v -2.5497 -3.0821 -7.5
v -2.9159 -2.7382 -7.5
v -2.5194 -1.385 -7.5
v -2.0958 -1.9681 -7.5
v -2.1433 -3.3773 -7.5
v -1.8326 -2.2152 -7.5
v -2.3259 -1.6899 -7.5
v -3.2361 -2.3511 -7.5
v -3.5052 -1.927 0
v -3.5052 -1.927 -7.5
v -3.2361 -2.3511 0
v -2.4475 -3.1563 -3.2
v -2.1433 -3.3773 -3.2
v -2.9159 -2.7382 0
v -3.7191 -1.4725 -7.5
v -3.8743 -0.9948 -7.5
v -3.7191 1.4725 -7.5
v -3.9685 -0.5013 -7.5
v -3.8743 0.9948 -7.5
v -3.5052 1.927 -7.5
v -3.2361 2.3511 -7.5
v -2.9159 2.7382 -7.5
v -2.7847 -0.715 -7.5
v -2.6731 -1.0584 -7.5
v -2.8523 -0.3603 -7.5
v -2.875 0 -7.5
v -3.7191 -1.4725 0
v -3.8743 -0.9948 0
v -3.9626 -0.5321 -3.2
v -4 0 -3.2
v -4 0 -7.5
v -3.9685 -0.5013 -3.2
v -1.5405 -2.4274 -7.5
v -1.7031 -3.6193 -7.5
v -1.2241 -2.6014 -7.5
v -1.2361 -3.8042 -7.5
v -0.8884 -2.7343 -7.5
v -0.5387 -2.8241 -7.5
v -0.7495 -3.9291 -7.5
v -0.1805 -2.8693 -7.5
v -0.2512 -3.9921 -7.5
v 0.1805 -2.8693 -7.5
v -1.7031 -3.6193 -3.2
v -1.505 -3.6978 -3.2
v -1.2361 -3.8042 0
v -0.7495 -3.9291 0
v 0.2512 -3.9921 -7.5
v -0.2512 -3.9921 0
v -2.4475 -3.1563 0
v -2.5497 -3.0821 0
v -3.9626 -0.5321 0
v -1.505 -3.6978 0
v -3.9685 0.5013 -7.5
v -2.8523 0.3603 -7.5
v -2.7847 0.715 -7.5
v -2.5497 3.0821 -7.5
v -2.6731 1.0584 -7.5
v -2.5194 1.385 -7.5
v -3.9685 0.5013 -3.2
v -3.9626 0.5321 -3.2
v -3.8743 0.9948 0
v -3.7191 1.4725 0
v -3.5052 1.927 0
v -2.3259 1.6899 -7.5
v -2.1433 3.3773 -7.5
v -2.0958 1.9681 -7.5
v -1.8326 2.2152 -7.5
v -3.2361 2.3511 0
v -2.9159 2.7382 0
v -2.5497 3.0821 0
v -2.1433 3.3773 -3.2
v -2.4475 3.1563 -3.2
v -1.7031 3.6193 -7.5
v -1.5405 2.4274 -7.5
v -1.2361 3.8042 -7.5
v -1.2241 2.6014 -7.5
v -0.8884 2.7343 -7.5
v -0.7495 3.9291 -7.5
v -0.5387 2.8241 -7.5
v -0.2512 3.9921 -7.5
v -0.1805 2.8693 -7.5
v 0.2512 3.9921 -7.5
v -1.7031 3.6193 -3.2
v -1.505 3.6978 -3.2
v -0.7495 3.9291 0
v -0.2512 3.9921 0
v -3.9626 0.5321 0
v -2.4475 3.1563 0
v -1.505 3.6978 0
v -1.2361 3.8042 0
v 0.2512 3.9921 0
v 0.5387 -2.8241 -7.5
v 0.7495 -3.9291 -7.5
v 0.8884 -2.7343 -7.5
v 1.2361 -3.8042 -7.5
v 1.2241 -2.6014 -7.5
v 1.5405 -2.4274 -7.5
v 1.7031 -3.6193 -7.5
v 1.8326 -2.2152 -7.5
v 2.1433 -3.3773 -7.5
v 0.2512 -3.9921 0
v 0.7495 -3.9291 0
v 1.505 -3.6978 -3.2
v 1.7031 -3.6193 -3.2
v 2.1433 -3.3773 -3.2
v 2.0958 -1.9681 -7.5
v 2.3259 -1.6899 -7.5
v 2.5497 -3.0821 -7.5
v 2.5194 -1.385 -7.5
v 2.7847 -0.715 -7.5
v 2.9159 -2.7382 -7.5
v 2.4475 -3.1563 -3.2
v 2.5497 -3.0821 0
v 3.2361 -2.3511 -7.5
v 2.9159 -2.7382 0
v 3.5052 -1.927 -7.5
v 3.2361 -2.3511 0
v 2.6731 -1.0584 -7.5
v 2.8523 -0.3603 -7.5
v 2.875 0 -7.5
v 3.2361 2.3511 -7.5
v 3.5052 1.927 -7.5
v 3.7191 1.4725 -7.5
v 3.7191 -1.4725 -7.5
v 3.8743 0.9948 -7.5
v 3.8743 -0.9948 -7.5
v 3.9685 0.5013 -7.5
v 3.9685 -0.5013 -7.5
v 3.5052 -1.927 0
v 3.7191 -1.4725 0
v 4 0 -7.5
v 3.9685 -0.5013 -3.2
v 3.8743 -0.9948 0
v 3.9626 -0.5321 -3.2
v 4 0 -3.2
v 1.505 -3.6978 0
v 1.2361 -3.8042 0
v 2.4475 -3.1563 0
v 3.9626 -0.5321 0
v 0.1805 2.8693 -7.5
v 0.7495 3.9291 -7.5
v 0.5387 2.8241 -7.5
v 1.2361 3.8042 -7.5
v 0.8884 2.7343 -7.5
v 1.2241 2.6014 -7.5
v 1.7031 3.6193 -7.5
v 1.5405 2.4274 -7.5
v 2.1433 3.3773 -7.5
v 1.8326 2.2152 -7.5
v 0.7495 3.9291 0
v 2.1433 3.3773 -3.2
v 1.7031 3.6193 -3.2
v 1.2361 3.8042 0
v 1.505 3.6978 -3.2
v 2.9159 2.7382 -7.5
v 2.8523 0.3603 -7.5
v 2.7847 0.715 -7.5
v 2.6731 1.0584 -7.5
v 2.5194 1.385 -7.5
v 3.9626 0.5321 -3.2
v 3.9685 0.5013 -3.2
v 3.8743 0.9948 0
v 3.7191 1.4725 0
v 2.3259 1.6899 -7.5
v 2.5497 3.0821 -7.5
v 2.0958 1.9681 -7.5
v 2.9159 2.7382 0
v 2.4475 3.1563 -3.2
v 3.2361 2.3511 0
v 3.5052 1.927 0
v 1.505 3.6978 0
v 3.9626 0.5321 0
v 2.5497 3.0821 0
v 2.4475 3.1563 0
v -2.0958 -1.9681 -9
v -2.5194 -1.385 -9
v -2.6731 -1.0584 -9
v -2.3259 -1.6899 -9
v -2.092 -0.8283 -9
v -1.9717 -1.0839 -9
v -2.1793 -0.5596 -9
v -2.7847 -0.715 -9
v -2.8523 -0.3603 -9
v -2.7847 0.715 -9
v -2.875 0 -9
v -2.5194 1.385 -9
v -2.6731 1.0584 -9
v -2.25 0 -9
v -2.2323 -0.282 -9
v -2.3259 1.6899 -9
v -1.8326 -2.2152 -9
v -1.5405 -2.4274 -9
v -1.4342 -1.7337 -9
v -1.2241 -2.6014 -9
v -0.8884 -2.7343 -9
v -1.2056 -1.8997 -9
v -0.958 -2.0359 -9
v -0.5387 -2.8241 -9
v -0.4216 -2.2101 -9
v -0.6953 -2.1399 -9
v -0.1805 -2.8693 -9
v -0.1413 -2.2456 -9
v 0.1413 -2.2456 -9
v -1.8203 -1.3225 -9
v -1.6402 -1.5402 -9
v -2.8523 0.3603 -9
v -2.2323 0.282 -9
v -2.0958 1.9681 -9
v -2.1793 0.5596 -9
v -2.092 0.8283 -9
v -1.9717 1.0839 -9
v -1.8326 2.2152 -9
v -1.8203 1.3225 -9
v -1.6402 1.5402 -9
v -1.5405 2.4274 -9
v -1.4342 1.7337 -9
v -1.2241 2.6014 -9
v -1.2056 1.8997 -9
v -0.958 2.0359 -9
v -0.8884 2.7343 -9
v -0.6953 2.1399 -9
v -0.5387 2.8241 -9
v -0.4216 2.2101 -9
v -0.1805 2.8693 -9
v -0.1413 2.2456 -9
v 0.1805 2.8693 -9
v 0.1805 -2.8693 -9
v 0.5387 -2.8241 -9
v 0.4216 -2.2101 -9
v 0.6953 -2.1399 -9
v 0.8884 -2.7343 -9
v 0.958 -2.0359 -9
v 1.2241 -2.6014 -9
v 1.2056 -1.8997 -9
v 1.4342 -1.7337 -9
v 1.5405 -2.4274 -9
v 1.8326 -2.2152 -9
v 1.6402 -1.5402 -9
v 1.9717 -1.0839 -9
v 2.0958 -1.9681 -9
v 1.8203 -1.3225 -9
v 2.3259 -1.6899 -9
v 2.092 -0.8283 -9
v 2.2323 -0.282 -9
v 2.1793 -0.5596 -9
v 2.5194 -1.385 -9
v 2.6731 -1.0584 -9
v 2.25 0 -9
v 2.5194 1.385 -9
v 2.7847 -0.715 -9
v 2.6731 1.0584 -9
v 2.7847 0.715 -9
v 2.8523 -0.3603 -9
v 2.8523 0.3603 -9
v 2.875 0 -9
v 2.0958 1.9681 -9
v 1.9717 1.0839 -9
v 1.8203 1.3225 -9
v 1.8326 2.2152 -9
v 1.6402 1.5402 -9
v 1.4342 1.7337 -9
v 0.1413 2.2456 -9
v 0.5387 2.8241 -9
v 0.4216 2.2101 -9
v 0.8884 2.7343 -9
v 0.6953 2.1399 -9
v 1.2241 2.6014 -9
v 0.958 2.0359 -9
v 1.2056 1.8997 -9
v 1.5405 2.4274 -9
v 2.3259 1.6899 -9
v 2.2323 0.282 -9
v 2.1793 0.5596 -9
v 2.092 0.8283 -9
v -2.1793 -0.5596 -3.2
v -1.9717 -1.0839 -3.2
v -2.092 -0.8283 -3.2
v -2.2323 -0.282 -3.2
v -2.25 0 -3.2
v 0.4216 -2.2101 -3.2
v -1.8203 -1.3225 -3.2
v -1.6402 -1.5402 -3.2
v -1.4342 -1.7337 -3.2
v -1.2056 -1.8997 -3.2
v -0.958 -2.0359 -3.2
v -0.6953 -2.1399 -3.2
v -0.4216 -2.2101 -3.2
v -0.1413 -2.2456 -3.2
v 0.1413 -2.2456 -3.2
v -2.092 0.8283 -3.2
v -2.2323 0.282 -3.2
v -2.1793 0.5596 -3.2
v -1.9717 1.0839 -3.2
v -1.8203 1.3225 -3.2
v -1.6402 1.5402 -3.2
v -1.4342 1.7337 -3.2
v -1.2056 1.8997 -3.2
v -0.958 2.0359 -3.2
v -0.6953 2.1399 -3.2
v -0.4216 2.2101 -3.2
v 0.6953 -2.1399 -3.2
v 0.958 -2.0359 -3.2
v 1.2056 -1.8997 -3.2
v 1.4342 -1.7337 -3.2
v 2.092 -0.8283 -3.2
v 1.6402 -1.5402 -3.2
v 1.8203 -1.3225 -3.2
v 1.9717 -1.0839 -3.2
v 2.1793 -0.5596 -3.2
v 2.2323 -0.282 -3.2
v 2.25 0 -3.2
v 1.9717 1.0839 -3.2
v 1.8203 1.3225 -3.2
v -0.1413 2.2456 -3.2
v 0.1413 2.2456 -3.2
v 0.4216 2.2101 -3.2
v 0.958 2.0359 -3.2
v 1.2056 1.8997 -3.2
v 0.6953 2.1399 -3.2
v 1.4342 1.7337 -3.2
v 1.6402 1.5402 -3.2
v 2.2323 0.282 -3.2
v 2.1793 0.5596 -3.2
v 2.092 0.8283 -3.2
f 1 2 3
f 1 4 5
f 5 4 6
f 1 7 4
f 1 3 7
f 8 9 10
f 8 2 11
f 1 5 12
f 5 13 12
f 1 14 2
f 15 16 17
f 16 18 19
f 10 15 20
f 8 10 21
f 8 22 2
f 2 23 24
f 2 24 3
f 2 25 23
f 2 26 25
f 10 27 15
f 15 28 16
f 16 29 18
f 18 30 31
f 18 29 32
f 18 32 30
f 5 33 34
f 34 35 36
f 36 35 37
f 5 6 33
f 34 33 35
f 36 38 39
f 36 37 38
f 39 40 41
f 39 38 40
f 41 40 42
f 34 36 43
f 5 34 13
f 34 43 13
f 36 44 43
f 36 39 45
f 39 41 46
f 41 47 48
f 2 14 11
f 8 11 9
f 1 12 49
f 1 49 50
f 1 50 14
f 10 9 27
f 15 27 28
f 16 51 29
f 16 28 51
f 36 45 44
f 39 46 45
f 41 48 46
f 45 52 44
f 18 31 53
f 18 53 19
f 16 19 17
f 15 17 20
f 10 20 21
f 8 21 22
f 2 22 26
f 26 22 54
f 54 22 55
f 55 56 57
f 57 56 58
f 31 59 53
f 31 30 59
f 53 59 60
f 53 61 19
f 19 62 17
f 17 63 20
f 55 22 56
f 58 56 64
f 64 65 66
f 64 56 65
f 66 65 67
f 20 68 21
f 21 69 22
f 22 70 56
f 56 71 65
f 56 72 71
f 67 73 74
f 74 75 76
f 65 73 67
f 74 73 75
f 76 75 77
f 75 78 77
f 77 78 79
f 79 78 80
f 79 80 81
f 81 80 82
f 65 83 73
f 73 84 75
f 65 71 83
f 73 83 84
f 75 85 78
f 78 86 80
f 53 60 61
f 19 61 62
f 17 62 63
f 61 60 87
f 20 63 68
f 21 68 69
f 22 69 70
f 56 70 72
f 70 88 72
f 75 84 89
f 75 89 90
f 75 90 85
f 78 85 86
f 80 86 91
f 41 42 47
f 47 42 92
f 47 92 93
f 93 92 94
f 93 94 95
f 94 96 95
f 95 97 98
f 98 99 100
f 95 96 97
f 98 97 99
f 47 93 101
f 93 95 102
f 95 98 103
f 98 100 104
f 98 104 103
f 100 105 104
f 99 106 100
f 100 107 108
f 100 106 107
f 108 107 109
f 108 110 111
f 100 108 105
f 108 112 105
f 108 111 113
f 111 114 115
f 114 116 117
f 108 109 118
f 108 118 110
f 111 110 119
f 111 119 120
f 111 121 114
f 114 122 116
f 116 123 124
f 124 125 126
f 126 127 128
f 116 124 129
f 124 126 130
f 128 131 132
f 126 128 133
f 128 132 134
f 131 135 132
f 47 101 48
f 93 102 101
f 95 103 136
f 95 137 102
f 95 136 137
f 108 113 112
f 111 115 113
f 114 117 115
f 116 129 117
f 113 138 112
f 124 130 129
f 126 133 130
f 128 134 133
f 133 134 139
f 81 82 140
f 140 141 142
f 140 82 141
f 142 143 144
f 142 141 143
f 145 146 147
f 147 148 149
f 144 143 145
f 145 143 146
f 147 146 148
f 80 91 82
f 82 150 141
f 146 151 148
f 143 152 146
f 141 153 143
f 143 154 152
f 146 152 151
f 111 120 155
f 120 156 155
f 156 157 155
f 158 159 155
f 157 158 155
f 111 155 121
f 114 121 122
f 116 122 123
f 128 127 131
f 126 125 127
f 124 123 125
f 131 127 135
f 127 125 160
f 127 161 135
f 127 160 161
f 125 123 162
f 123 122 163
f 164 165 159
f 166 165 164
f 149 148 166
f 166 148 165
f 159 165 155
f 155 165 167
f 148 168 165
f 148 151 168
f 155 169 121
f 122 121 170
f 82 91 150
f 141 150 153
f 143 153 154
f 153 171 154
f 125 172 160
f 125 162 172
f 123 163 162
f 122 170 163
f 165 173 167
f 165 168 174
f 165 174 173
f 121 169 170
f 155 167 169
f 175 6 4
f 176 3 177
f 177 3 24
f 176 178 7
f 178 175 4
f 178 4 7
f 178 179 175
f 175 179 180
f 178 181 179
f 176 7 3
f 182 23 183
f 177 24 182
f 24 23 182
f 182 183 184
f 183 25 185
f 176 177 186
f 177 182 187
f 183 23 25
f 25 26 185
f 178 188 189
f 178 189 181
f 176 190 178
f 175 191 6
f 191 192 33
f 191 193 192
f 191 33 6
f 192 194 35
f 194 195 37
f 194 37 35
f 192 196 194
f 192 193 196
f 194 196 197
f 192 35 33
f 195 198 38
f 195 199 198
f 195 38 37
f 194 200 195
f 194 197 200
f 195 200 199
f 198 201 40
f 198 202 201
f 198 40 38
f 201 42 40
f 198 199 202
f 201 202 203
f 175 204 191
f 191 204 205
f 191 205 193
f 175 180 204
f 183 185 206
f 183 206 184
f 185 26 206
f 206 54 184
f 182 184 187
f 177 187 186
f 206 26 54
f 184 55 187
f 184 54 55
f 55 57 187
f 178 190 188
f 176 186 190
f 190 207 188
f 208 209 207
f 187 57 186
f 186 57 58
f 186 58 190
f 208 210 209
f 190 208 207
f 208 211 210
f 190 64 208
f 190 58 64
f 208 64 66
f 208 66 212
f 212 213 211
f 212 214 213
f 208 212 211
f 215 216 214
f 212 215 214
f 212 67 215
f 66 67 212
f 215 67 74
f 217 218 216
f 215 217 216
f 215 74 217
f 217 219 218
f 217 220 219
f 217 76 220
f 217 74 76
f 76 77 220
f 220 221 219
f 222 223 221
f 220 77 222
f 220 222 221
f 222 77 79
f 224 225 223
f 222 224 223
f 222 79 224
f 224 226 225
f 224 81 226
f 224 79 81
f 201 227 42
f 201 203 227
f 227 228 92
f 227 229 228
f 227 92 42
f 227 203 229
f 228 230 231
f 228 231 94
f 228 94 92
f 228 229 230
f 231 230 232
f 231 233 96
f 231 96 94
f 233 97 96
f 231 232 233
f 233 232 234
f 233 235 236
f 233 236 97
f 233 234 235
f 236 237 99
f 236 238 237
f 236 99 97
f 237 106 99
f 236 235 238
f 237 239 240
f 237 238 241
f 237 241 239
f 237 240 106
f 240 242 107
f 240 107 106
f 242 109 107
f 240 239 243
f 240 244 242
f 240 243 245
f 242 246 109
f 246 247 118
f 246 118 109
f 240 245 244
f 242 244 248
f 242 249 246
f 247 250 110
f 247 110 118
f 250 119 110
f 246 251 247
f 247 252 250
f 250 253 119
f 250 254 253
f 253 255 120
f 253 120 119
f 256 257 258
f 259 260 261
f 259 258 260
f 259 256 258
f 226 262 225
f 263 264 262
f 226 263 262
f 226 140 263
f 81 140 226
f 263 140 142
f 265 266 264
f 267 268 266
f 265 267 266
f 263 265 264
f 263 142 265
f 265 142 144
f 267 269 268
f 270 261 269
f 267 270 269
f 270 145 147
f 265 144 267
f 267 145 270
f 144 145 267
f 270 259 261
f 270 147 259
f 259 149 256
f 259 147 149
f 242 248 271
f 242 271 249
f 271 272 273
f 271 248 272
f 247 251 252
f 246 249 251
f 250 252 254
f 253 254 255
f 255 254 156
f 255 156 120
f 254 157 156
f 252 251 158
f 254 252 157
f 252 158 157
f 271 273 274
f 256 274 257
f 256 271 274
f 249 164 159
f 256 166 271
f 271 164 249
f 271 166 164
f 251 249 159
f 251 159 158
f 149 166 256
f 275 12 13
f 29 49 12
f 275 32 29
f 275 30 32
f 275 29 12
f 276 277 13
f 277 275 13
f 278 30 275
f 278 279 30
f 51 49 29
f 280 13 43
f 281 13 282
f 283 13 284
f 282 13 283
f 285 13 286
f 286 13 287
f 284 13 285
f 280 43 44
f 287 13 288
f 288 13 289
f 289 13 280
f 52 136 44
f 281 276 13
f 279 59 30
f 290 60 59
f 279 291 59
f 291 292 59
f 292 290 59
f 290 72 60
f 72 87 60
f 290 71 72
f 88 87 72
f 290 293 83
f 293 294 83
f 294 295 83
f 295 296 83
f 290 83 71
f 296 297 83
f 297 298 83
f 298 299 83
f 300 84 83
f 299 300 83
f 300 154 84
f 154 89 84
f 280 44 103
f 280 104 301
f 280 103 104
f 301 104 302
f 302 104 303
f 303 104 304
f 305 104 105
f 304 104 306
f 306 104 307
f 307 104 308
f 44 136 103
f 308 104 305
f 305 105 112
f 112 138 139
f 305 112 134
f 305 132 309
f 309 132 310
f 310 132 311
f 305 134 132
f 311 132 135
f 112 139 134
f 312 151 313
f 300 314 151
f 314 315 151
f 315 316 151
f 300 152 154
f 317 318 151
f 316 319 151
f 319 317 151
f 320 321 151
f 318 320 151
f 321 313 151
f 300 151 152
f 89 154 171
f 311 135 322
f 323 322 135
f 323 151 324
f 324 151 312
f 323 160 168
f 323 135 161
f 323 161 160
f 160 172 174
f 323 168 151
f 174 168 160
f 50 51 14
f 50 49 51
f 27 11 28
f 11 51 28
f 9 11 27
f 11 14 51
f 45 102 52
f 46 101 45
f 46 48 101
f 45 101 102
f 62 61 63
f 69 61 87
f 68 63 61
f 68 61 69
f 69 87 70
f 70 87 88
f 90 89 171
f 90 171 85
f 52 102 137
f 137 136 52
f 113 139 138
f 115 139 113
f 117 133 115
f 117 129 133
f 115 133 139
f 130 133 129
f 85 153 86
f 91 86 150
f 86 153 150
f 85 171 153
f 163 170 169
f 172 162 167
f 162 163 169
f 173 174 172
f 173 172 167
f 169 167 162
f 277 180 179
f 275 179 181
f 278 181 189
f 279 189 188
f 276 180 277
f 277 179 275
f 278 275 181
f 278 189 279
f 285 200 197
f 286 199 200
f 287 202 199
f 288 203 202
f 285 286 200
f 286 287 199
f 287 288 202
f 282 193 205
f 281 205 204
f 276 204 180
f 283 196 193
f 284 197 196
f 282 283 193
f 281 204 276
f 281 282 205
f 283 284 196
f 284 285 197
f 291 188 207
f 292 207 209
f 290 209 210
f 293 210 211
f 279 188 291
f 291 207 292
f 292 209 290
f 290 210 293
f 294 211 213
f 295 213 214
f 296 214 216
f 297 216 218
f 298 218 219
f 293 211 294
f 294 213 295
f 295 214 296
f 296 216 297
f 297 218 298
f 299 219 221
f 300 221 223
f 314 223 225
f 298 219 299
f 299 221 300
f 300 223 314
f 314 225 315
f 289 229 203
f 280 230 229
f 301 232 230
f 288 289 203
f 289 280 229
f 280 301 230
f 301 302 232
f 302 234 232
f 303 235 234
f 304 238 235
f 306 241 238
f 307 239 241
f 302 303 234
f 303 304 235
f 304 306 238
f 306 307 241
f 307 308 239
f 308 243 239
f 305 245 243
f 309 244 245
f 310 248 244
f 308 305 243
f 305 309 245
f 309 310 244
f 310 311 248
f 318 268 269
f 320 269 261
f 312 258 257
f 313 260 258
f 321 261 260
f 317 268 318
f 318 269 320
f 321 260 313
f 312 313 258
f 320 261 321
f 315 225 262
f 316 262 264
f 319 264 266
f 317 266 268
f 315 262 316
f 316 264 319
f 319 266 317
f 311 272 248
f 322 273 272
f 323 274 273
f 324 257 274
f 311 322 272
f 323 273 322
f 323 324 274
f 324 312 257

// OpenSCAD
$fn = 50;

difference() {
	union() {
		translate(v = [0, 0, -7.5]) {
			cylinder(h = 10.5, r = 4.0);
		}
		#translate(v = [0, 0, -9.0]) {
			cylinder(h = 9, r = 2.875);
		}
	}
	union() {
		translate(v = [0, 0, 0]) {
			rotate(a = [0, 0, 0]) {
				difference() {
					union() {
						translate(v = [0, 0, -3.2]) {
							linear_extrude(height = 3.2) {
								polygon(points = [[4.2698, 0.0], [2.1349000000000005, 3.697755269078796], [-2.134899999999999, 3.6977552690787965], [-4.2698, 5.228996902999369e-16], [-2.134900000000002, -3.6977552690787956], [2.1348999999999974, -3.697755269078798]]);
							}
						}
					}
					union();
				}
			}
		}
		#cylinder(h = 3, r = 5.0);
		#translate(v = [0, 0, -100.0]) {
			cylinder(h = 200, r = 2.25);
		}
	}
}
